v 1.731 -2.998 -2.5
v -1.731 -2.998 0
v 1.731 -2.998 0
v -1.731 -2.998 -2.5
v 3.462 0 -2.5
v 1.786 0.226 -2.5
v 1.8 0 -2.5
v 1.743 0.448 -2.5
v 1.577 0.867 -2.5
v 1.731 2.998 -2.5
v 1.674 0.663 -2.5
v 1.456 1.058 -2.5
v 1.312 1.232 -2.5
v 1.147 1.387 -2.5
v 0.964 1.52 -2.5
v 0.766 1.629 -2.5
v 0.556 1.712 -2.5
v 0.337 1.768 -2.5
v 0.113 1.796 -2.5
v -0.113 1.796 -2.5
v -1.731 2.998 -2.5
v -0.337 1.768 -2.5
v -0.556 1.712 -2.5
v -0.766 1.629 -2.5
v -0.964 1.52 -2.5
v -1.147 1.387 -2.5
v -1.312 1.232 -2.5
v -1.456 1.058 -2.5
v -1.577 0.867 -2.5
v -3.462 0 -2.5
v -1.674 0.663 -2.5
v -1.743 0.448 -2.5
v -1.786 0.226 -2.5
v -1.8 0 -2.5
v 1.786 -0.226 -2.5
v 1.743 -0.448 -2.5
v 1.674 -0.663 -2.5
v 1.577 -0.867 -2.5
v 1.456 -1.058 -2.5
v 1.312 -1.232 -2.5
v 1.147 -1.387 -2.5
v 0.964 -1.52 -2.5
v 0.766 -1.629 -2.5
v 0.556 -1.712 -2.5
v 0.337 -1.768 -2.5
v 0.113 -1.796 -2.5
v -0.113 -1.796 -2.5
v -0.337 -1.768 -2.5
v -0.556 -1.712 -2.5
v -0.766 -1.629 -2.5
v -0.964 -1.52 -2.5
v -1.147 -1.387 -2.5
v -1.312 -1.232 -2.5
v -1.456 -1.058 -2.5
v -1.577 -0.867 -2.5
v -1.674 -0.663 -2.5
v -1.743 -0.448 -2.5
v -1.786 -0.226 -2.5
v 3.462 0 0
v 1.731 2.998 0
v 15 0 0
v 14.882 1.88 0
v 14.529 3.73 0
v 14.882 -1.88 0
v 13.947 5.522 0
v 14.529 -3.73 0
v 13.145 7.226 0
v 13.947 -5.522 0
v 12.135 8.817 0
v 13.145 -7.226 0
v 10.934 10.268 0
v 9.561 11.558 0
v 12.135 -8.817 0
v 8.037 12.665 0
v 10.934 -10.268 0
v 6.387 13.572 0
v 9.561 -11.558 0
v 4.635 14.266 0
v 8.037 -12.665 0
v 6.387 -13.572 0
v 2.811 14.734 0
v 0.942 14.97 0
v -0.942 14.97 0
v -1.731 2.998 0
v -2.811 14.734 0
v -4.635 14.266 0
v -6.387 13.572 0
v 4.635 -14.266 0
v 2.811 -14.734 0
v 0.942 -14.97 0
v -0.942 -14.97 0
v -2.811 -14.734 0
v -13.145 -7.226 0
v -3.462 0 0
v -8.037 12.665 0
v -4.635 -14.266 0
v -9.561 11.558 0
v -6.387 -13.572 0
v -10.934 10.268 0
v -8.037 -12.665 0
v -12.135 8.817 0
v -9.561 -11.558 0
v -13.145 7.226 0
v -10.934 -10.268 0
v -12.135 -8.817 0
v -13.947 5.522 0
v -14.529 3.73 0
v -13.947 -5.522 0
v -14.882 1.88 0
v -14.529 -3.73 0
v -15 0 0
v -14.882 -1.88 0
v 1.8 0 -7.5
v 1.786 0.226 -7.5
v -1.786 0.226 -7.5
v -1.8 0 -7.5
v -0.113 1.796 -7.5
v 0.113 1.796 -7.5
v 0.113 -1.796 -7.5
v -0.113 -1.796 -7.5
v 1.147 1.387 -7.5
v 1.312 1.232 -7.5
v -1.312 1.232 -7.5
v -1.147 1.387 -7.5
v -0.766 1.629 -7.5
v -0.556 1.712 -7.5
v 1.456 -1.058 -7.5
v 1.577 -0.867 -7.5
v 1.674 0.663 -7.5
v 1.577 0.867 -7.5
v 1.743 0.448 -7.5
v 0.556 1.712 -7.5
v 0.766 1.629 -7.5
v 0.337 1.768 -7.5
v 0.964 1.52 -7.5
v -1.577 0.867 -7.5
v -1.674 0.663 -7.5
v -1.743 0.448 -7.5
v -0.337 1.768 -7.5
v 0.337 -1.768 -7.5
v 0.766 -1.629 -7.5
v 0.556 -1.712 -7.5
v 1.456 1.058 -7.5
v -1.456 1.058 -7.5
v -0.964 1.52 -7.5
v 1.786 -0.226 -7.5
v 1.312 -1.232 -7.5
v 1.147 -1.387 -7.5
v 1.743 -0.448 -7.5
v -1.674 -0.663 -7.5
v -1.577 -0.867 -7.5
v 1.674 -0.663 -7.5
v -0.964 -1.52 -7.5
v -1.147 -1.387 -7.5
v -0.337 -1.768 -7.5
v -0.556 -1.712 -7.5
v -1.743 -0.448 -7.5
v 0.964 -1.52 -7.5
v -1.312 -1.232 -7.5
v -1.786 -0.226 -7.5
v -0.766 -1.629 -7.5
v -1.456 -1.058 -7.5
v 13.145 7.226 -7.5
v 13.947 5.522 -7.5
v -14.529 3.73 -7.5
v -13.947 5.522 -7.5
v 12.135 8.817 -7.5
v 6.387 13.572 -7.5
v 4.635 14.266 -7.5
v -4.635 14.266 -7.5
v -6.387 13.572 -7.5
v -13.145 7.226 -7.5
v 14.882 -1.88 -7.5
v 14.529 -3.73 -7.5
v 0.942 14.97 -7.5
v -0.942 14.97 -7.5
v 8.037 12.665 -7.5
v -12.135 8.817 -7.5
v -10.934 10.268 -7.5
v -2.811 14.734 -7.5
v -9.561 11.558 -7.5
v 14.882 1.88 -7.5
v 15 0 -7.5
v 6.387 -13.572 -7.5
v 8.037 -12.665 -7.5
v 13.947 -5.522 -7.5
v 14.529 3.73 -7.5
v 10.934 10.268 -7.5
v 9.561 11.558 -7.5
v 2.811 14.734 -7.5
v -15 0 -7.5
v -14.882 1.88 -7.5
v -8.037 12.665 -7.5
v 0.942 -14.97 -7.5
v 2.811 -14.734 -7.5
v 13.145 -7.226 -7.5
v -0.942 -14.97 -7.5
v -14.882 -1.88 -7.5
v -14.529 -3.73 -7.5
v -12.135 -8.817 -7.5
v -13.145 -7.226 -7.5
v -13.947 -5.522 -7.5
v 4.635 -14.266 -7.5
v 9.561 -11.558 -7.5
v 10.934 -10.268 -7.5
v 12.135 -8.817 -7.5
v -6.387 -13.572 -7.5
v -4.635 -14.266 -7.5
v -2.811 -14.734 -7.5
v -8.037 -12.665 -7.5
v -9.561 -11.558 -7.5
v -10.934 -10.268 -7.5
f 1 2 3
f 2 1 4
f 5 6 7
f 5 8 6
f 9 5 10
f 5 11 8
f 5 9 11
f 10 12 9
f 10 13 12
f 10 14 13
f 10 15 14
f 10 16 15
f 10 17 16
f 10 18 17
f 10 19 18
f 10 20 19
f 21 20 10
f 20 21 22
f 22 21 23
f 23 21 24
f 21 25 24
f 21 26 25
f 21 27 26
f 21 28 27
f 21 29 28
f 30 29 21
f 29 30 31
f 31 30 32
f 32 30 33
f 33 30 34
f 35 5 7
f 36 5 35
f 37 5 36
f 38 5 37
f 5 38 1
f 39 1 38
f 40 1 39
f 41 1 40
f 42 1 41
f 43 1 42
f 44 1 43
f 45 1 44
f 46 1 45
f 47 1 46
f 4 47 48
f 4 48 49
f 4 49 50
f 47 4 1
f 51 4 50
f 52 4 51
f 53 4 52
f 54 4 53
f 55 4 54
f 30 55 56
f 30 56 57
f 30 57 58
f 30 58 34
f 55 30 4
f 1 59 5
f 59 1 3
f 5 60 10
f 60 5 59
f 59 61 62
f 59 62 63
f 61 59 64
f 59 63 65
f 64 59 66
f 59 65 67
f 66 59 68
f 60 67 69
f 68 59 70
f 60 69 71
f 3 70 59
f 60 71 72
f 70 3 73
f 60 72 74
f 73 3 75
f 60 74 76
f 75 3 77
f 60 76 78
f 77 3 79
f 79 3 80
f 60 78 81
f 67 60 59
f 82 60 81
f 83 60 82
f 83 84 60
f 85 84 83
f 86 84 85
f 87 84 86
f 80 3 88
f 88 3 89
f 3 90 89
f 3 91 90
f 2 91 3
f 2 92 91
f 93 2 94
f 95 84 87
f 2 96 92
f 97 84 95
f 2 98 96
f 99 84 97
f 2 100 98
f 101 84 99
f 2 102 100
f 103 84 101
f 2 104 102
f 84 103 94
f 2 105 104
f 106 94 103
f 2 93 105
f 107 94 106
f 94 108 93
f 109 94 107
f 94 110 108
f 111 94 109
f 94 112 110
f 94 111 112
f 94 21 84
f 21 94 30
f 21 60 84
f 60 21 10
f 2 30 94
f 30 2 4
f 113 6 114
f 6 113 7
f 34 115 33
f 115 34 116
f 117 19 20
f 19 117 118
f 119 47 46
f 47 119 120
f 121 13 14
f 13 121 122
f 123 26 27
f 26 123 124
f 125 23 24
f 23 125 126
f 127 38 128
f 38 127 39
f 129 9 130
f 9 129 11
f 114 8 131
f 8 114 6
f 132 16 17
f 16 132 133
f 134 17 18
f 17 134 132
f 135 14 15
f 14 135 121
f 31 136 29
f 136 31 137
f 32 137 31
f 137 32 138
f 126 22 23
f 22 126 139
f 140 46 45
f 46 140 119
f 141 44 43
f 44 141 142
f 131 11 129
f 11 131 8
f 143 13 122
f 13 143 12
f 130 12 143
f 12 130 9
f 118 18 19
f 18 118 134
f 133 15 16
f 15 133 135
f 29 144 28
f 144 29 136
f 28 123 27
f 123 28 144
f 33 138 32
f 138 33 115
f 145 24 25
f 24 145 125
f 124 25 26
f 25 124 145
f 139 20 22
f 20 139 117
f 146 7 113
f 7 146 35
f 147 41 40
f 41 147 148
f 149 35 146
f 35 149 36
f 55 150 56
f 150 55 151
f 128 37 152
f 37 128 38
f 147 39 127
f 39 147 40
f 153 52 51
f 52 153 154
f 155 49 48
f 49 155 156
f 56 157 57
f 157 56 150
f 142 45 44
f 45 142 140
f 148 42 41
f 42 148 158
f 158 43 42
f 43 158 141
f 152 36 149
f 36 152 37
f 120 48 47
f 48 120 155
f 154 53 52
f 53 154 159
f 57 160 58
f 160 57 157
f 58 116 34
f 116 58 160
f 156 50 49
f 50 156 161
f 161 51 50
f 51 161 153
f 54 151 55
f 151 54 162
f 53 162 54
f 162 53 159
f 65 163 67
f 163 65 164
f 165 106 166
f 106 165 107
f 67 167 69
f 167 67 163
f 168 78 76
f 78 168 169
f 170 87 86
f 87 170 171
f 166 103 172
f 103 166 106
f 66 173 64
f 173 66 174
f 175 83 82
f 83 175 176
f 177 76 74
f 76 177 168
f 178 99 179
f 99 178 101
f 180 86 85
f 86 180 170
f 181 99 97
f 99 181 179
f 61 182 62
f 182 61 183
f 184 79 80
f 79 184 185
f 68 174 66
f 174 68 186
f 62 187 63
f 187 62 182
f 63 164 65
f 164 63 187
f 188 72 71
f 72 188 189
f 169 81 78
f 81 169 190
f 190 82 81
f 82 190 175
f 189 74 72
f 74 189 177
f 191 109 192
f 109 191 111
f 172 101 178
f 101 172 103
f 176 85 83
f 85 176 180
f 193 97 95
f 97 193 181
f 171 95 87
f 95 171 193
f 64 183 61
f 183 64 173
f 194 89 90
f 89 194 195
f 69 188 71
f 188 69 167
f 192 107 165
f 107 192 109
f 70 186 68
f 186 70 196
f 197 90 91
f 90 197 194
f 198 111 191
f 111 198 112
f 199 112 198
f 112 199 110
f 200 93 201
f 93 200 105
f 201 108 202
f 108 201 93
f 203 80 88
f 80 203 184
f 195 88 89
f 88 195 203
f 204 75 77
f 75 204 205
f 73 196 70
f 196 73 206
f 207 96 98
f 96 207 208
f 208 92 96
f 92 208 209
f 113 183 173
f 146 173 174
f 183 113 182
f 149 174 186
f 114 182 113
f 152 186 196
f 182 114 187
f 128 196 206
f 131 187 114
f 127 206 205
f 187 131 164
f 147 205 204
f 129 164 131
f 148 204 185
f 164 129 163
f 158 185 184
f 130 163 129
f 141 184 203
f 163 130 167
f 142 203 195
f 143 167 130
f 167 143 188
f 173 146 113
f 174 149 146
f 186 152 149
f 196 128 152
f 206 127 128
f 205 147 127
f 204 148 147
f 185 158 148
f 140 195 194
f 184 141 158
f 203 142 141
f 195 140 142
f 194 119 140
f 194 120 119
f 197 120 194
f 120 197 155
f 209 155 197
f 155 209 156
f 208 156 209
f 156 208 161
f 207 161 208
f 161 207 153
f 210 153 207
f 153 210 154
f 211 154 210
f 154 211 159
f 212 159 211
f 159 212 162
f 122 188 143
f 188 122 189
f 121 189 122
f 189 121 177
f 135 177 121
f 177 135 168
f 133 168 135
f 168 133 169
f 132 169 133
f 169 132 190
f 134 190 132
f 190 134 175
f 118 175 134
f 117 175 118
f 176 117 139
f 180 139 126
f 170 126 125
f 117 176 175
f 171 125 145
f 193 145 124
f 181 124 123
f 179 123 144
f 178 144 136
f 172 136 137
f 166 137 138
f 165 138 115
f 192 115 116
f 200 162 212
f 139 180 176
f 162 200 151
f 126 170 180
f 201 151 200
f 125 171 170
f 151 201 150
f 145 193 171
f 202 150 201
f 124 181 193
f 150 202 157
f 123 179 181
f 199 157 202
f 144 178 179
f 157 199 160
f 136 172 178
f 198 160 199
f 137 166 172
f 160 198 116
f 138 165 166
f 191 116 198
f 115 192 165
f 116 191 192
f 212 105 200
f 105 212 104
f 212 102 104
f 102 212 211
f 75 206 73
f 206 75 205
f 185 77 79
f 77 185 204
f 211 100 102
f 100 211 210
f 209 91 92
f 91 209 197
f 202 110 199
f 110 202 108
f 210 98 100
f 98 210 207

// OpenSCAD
$fn = 50;


difference() {
	union() {
		translate(v = [0, 0, -7.5000000000]) {
			cylinder(h = 7.5000000000, r = 15.0000000000);
		}
	}
	union() {
		translate(v = [0, 0, 0]) {
			rotate(a = [0, 0, 0]) {
				difference() {
					union() {
						translate(v = [0, 0, -2.5000000000]) {
							linear_extrude(height = 2.5000000000) {
								polygon(points = [[3.4620000000, 0.0000000000], [1.7310000000, 2.9981799479], [-1.7310000000, 2.9981799479], [-3.4620000000, 0.0000000000], [-1.7310000000, -2.9981799479], [1.7310000000, -2.9981799479]]);
							}
						}
					}
					union();
				}
			}
		}
		#translate(v = [0, 0, -100.0000000000]) {
			cylinder(h = 200, r = 1.8000000000);
		}
	}
}
